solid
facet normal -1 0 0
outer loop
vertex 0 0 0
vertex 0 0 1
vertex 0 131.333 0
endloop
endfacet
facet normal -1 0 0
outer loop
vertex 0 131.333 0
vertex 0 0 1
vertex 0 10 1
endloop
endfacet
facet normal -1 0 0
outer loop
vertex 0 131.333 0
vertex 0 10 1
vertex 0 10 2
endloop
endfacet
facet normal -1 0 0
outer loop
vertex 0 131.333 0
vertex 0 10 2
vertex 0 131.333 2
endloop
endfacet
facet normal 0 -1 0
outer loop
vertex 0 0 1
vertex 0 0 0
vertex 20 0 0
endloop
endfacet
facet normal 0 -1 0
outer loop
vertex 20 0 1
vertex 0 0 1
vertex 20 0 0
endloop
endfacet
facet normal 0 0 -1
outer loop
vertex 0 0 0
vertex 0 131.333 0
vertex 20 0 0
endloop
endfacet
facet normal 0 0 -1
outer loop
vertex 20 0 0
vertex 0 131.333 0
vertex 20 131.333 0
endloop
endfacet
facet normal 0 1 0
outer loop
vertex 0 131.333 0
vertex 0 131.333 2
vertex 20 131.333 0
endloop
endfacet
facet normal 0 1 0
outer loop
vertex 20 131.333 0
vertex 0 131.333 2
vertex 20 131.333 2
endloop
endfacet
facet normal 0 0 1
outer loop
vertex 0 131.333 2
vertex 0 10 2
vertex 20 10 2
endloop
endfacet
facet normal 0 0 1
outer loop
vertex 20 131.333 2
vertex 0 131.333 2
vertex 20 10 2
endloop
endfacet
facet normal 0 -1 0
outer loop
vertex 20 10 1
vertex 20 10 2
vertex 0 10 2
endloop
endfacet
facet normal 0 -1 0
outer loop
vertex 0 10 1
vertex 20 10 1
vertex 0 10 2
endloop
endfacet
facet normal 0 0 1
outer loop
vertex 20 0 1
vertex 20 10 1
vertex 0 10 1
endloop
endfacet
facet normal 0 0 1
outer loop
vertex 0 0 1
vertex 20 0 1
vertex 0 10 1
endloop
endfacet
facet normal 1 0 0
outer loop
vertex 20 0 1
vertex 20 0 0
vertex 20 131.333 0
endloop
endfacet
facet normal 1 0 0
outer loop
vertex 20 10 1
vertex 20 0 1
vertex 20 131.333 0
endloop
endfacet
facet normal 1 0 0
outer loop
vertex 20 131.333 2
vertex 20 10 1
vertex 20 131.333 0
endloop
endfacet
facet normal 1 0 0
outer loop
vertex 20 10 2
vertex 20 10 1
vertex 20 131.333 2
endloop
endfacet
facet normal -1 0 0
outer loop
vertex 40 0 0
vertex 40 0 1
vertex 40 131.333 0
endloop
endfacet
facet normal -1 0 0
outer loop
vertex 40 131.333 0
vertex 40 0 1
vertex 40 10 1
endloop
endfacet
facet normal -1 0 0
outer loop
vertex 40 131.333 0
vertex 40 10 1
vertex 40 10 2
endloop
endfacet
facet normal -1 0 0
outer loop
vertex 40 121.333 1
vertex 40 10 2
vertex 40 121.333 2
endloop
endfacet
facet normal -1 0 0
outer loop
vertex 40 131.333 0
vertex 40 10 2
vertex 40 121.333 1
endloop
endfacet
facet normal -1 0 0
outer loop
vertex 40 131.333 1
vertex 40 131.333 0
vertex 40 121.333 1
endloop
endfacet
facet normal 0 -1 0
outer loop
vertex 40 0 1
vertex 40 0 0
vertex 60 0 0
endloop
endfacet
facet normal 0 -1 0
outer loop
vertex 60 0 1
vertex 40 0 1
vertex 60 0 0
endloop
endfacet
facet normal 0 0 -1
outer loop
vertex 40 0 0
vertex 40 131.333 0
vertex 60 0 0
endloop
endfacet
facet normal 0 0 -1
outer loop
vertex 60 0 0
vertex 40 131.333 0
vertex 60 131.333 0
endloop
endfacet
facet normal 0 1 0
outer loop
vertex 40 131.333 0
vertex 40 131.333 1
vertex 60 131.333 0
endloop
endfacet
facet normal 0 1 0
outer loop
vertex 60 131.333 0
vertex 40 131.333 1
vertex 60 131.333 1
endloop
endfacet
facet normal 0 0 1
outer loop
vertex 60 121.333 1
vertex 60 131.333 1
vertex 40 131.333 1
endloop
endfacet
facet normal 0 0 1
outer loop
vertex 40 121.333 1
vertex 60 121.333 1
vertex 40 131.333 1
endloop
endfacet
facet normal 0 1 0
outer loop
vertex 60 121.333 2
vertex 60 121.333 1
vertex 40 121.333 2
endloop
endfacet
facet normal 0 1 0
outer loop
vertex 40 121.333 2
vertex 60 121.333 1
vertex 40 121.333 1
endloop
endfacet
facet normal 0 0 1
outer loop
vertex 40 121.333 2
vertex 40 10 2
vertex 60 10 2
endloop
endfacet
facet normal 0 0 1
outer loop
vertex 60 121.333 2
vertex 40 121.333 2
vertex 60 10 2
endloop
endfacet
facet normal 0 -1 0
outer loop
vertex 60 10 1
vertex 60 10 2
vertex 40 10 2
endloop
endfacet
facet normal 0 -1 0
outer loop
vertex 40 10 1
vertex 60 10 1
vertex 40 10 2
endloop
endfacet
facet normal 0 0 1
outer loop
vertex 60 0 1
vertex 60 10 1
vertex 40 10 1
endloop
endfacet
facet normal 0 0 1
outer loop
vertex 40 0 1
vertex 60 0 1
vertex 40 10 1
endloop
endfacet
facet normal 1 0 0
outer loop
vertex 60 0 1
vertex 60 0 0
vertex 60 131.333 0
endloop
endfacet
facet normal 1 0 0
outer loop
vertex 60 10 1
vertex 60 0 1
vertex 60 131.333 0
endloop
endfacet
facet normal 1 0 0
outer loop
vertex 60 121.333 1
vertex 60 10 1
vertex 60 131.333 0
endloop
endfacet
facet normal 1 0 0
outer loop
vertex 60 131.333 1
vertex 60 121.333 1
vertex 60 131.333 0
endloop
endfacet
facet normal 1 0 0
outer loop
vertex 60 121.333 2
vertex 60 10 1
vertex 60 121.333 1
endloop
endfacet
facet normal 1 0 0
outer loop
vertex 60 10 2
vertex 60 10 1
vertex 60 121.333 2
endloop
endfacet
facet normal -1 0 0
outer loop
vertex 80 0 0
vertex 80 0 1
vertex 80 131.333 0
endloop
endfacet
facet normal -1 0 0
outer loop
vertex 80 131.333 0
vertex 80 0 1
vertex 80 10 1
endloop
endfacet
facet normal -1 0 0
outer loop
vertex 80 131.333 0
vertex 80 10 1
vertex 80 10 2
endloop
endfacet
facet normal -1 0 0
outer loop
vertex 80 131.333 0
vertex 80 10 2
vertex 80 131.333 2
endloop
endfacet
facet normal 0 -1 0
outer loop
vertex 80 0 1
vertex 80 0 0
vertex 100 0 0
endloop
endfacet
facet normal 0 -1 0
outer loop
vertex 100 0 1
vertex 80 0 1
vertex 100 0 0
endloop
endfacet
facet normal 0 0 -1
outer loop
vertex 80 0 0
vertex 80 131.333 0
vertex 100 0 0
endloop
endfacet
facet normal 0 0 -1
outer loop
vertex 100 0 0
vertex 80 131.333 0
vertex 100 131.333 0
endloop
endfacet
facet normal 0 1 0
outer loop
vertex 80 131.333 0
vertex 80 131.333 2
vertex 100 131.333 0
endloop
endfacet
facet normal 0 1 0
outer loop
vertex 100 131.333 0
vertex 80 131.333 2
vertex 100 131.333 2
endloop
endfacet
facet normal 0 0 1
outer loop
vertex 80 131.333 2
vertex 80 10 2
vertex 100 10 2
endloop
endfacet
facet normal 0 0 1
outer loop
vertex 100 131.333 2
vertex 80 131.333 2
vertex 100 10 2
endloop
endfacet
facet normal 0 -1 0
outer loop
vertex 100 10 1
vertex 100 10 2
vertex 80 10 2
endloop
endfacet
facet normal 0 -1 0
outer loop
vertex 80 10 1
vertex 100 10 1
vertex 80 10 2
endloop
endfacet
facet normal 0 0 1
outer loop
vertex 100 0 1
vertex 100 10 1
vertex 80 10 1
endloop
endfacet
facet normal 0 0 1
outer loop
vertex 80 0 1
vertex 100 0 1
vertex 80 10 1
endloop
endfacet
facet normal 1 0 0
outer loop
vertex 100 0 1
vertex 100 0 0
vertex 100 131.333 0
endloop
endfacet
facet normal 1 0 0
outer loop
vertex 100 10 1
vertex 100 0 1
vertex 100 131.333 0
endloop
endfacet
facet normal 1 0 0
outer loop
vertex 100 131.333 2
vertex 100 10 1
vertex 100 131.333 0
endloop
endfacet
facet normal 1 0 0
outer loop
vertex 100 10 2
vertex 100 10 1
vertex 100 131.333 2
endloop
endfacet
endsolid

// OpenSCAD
//Longboard LED Strips

LEDWidth = 10;
stripWidth = 20;
stripLength = 394;
stripHeight = 2;
segmentLength = stripLength / 3;
connectionLength = 10;

//Render
strip();

module centerSegment(){
	difference(){
		cube([stripWidth, segmentLength, stripHeight]);
		translate([0, 0, stripHeight / 2])cube([stripWidth, connectionLength, stripHeight / 2]);
	translate([0, segmentLength - connectionLength, stripHeight / 2])cube([stripWidth, connectionLength, stripHeight / 2]);
	}
}

module endSegment(){
	difference(){
		cube([stripWidth, segmentLength, stripHeight]);
		translate([0, 0, stripHeight / 2])cube([stripWidth, connectionLength, stripHeight / 2]);
	}
}

module strip(){
	endSegment();
	translate([stripWidth * 2, 0, 0])centerSegment();
	translate([stripWidth * 4, 0, 0])endSegment();
}
